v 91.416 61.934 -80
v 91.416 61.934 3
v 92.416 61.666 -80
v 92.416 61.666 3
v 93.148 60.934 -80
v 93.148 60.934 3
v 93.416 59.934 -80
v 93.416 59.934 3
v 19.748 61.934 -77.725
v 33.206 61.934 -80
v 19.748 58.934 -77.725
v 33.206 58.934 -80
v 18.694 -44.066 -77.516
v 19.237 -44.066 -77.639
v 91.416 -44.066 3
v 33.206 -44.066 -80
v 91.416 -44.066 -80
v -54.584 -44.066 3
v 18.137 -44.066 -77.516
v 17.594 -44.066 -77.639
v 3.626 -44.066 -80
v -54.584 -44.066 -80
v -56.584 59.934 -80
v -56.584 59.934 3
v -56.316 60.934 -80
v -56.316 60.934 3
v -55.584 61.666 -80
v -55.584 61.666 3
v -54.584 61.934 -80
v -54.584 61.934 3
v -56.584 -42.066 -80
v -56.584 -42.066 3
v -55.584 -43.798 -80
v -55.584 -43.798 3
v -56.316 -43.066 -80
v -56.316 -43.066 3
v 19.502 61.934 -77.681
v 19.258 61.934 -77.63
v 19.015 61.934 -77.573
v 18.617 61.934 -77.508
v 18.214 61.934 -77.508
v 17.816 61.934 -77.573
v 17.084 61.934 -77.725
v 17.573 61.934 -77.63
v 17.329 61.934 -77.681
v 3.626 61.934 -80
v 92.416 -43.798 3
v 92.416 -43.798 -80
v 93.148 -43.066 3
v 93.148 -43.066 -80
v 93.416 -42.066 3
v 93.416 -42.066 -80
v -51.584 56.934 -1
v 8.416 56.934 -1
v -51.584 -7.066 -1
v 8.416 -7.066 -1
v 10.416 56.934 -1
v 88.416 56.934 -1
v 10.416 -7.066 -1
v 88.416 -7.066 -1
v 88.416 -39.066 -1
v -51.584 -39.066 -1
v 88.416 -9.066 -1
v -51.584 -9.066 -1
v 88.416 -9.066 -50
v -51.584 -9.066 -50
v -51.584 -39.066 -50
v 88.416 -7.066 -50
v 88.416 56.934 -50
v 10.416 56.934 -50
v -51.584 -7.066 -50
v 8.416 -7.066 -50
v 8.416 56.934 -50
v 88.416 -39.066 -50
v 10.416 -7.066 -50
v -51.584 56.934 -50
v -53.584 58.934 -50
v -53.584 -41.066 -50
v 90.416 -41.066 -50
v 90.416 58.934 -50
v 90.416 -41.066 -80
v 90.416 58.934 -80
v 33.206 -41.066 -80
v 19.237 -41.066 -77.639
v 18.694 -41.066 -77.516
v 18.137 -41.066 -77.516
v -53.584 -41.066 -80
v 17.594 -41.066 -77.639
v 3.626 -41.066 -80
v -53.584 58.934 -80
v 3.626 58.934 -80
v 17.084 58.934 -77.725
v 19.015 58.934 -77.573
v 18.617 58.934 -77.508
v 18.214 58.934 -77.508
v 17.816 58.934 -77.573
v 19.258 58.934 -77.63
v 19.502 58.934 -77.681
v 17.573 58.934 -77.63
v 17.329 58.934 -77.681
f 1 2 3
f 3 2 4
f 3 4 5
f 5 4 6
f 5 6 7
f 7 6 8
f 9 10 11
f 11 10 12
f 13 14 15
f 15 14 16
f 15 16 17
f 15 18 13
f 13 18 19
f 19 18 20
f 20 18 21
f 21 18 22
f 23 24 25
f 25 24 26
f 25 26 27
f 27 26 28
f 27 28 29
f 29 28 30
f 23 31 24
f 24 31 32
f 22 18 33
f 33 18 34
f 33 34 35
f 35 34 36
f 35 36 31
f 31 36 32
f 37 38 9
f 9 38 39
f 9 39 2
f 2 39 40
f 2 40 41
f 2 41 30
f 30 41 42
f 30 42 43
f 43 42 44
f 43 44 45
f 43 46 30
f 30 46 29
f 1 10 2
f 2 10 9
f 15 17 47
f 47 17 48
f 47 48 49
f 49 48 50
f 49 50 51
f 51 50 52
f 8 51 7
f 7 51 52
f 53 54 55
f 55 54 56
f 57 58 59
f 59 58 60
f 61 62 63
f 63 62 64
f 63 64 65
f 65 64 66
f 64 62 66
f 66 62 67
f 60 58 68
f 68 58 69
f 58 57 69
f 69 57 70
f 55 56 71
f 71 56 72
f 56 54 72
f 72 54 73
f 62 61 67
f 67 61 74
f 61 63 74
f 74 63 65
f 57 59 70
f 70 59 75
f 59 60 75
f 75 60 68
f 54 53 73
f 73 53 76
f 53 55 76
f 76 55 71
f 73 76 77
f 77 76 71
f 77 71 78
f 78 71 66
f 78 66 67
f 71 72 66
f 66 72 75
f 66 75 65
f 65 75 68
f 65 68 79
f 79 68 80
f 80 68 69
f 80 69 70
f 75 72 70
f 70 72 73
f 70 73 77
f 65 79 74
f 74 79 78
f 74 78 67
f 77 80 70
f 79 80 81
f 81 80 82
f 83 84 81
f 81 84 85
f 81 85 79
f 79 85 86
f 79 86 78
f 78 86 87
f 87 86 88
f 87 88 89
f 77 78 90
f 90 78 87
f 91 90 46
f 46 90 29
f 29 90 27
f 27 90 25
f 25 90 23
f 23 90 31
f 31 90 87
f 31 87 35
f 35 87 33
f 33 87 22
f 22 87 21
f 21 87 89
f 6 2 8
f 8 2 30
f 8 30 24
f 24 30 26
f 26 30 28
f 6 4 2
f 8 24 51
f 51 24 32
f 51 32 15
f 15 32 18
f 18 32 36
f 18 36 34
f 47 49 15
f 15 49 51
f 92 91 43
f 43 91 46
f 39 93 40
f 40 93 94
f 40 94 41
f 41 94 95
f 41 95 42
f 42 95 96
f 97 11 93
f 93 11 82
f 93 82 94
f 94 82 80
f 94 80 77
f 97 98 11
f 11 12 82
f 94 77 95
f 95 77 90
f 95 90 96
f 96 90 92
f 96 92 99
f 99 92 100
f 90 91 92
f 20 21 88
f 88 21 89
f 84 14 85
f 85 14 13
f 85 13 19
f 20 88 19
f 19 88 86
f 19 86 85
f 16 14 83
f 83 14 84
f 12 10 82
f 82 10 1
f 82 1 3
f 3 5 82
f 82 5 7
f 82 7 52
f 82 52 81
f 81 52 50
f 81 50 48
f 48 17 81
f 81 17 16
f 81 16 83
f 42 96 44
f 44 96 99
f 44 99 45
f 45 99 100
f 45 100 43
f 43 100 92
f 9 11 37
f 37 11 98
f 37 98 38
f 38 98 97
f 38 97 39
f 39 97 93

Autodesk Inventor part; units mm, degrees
ref_plane "YZ Plane" through (0, 0, 0) normal (1, 0, 0) x (0, 1, 0)
ref_plane "XZ Plane" through (0, 0, 0) normal (0, 1, 0) x (-1, 0, 0)
ref_plane "XY Plane" through (0, 0, 0) normal (0, 0, 1) x (1, 0, 0)
sketch "Sketch1" plane through (0, 0, 0) normal (0, 0, 1) x (1, 0, 0)
  line L0 (-51.5843, -39.0663) -> (88.4157, -39.0663)
  line L1 (88.4157, -39.0663) -> (88.4157, -9.0663)
  line L2 (88.4157, -9.0663) -> (-51.5843, -9.0663)
  line L3 (-51.5843, -9.0663) -> (-51.5843, -39.0663)
  line L4 (-53.5843, -41.0663) -> (90.4157, -41.0663)
  line L5 (90.4157, -41.0663) -> (90.4157, -7.0663)
  line L6 (90.4157, -7.0663) -> (-53.5843, -7.0663)
  line L7 (-53.5843, -7.0663) -> (-53.5843, -41.0663)
  line L8 (10.4157, -7.0663) -> (88.4157, -7.0663)
  line L9 (88.4157, -7.0663) -> (88.4157, 56.9337)
  line L10 (88.4157, 56.9337) -> (10.4157, 56.9337)
  line L11 (10.4157, 56.9337) -> (10.4157, -7.0663)
  line L12 (90.4157, 58.9337) -> (90.4157, -9.0663)
  line L13 (90.4157, -9.0663) -> (8.4157, -9.0663)
  line L14 (8.4157, -9.0663) -> (8.4157, 58.9337)
  line L15 (8.4157, 58.9337) -> (90.4157, 58.9337)
  line L16 (-53.5843, -7.0663) -> (8.4157, -7.0663)
  line L17 (8.4157, -7.0663) -> (8.4157, 58.9337)
  line L18 (8.4157, 58.9337) -> (-53.5843, 58.9337)
  line L19 (-53.5843, 58.9337) -> (-53.5843, -7.0663)
  line L20 (-51.5843, -6.0663) -> (-51.5843, 56.9337)
  line L21 (-51.5843, 56.9337) -> (9.4157, 56.9337)
  line L22 (-56.5843, -44.0663) -> (93.4157, -44.0663)
  line L23 (93.4157, -44.0663) -> (93.4157, 61.9337)
  line L24 (93.4157, 61.9337) -> (-56.5843, 61.9337)
  line L25 (-56.5843, 61.9337) -> (-56.5843, -44.0663)
  line L26 (-51.5843, -6.0663) -> (-51.5843, -9.0663)
  point P0 (0, 0)
  point P1 (90.4157, -7.0663)
  point P2 (88.4157, -7.0663)
  point P3 (10.4157, -7.0663)
  point P4 (8.4157, -7.0663)
  point P5 (-47.5843, -6.0663)
  point P6 (8.4157, 56.9337)
  point P7 (90.4157, -7.0663)
  point P8 (-51.5843, -7.0663)
  dimension "d0" = 140
  dimension "d1" = 30
  dimension "d2" = 2
  dimension "d3" = 78
  dimension "d4" = 64
  dimension "d5" = 2
  dimension "d7" = 0
  dimension "d8" = 0
  dimension "d9" = 2
  dimension "d10" = 3
  dimension "d11" = 3
  dimension "d12" = 3
  dimension "d13" = 3
extrude "Extrusion1" add sketch "Sketch1" along normal blind 3 contours L3 L2 L1 L0 | L0 L1 L13 L5 L4 L7 L6 L26 L3 | L26 L6 L14 L2 | L2 L14 L6 L5 L13 | L26 L20 L21 L14 L6 | L6 L19 L18 L14 L21 L20 L26 | L14 L15 L12 L6 L9 L10 L11 | L11 L10 L9 L6 | L25 L24 L23 L22
extrude "Extrusion2" add sketch "Sketch1" against normal blind 80
extrude "Extrusion3" add sketch "Sketch1" against normal blind 50 contours L0 L1 L13 L5 L4 L7 L6 L26 L3 | L26 L6 L14 L2 | L2 L14 L6 L5 L13 | L6 L19 L18 L14 L21 L20 L26 | L14 L15 L12 L6 L9 L10 L11
extrude "Extrusion4" add sketch "Sketch1" against normal blind 1 contours L3 L2 L1 L0 | L0 L1 L13 L5 L4 L7 L6 L26 L3 | L26 L6 L14 L2 | L2 L14 L6 L5 L13 | L26 L20 L21 L14 L6 | L6 L19 L18 L14 L21 L20 L26 | L14 L15 L12 L6 L9 L10 L11 | L11 L10 L9 L6
fillet "Fillet1" radius 2 4 edges at (93.4157, -44.0663, -38.5) (-56.5843, -44.0663, -38.5) (-56.5843, 61.9337, -38.5) (93.4157, 61.9337, -38.5)
sketch "Sketch3" plane through (-54.5843, 61.9337, -80) normal (0, 1, 0) x (1, 0, 0)
  line L0 (-2, 0) -> (0, 0) projected
  line L1 (-2, 0) -> (73, 0)
  line L2 (145, 0) -> (1, 0) projected
  circle A0 centre (73, 0) radius 2.5
  line L3 (73, 0) -> (73, -2.5)
  line L4 (73, -2.5) -> (87.7902, 0)
  line L5 (73, -2.5) -> (58.2098, 0)
  point P0 (54.5843, -80)
  point P1 (72.1783, -2.3611)
  point P2 (73.8217, -2.3611)
  point P3 (75.5, 0)
  point P4 (70.5, 0)
  dimension "d26" = 5
  dimension "d25" = 75
  dimension "d27" = 15
  dimension "d28" = 15
extrude "Extrusion6" cut sketch "Sketch3" against normal through all
fillet "Fillet2" radius 10 2 edges at (17.5941, 60.4337, -77.6389) (19.2374, 60.4337, -77.6389)
properties part number "box_kit" material "LCP Plastic"
